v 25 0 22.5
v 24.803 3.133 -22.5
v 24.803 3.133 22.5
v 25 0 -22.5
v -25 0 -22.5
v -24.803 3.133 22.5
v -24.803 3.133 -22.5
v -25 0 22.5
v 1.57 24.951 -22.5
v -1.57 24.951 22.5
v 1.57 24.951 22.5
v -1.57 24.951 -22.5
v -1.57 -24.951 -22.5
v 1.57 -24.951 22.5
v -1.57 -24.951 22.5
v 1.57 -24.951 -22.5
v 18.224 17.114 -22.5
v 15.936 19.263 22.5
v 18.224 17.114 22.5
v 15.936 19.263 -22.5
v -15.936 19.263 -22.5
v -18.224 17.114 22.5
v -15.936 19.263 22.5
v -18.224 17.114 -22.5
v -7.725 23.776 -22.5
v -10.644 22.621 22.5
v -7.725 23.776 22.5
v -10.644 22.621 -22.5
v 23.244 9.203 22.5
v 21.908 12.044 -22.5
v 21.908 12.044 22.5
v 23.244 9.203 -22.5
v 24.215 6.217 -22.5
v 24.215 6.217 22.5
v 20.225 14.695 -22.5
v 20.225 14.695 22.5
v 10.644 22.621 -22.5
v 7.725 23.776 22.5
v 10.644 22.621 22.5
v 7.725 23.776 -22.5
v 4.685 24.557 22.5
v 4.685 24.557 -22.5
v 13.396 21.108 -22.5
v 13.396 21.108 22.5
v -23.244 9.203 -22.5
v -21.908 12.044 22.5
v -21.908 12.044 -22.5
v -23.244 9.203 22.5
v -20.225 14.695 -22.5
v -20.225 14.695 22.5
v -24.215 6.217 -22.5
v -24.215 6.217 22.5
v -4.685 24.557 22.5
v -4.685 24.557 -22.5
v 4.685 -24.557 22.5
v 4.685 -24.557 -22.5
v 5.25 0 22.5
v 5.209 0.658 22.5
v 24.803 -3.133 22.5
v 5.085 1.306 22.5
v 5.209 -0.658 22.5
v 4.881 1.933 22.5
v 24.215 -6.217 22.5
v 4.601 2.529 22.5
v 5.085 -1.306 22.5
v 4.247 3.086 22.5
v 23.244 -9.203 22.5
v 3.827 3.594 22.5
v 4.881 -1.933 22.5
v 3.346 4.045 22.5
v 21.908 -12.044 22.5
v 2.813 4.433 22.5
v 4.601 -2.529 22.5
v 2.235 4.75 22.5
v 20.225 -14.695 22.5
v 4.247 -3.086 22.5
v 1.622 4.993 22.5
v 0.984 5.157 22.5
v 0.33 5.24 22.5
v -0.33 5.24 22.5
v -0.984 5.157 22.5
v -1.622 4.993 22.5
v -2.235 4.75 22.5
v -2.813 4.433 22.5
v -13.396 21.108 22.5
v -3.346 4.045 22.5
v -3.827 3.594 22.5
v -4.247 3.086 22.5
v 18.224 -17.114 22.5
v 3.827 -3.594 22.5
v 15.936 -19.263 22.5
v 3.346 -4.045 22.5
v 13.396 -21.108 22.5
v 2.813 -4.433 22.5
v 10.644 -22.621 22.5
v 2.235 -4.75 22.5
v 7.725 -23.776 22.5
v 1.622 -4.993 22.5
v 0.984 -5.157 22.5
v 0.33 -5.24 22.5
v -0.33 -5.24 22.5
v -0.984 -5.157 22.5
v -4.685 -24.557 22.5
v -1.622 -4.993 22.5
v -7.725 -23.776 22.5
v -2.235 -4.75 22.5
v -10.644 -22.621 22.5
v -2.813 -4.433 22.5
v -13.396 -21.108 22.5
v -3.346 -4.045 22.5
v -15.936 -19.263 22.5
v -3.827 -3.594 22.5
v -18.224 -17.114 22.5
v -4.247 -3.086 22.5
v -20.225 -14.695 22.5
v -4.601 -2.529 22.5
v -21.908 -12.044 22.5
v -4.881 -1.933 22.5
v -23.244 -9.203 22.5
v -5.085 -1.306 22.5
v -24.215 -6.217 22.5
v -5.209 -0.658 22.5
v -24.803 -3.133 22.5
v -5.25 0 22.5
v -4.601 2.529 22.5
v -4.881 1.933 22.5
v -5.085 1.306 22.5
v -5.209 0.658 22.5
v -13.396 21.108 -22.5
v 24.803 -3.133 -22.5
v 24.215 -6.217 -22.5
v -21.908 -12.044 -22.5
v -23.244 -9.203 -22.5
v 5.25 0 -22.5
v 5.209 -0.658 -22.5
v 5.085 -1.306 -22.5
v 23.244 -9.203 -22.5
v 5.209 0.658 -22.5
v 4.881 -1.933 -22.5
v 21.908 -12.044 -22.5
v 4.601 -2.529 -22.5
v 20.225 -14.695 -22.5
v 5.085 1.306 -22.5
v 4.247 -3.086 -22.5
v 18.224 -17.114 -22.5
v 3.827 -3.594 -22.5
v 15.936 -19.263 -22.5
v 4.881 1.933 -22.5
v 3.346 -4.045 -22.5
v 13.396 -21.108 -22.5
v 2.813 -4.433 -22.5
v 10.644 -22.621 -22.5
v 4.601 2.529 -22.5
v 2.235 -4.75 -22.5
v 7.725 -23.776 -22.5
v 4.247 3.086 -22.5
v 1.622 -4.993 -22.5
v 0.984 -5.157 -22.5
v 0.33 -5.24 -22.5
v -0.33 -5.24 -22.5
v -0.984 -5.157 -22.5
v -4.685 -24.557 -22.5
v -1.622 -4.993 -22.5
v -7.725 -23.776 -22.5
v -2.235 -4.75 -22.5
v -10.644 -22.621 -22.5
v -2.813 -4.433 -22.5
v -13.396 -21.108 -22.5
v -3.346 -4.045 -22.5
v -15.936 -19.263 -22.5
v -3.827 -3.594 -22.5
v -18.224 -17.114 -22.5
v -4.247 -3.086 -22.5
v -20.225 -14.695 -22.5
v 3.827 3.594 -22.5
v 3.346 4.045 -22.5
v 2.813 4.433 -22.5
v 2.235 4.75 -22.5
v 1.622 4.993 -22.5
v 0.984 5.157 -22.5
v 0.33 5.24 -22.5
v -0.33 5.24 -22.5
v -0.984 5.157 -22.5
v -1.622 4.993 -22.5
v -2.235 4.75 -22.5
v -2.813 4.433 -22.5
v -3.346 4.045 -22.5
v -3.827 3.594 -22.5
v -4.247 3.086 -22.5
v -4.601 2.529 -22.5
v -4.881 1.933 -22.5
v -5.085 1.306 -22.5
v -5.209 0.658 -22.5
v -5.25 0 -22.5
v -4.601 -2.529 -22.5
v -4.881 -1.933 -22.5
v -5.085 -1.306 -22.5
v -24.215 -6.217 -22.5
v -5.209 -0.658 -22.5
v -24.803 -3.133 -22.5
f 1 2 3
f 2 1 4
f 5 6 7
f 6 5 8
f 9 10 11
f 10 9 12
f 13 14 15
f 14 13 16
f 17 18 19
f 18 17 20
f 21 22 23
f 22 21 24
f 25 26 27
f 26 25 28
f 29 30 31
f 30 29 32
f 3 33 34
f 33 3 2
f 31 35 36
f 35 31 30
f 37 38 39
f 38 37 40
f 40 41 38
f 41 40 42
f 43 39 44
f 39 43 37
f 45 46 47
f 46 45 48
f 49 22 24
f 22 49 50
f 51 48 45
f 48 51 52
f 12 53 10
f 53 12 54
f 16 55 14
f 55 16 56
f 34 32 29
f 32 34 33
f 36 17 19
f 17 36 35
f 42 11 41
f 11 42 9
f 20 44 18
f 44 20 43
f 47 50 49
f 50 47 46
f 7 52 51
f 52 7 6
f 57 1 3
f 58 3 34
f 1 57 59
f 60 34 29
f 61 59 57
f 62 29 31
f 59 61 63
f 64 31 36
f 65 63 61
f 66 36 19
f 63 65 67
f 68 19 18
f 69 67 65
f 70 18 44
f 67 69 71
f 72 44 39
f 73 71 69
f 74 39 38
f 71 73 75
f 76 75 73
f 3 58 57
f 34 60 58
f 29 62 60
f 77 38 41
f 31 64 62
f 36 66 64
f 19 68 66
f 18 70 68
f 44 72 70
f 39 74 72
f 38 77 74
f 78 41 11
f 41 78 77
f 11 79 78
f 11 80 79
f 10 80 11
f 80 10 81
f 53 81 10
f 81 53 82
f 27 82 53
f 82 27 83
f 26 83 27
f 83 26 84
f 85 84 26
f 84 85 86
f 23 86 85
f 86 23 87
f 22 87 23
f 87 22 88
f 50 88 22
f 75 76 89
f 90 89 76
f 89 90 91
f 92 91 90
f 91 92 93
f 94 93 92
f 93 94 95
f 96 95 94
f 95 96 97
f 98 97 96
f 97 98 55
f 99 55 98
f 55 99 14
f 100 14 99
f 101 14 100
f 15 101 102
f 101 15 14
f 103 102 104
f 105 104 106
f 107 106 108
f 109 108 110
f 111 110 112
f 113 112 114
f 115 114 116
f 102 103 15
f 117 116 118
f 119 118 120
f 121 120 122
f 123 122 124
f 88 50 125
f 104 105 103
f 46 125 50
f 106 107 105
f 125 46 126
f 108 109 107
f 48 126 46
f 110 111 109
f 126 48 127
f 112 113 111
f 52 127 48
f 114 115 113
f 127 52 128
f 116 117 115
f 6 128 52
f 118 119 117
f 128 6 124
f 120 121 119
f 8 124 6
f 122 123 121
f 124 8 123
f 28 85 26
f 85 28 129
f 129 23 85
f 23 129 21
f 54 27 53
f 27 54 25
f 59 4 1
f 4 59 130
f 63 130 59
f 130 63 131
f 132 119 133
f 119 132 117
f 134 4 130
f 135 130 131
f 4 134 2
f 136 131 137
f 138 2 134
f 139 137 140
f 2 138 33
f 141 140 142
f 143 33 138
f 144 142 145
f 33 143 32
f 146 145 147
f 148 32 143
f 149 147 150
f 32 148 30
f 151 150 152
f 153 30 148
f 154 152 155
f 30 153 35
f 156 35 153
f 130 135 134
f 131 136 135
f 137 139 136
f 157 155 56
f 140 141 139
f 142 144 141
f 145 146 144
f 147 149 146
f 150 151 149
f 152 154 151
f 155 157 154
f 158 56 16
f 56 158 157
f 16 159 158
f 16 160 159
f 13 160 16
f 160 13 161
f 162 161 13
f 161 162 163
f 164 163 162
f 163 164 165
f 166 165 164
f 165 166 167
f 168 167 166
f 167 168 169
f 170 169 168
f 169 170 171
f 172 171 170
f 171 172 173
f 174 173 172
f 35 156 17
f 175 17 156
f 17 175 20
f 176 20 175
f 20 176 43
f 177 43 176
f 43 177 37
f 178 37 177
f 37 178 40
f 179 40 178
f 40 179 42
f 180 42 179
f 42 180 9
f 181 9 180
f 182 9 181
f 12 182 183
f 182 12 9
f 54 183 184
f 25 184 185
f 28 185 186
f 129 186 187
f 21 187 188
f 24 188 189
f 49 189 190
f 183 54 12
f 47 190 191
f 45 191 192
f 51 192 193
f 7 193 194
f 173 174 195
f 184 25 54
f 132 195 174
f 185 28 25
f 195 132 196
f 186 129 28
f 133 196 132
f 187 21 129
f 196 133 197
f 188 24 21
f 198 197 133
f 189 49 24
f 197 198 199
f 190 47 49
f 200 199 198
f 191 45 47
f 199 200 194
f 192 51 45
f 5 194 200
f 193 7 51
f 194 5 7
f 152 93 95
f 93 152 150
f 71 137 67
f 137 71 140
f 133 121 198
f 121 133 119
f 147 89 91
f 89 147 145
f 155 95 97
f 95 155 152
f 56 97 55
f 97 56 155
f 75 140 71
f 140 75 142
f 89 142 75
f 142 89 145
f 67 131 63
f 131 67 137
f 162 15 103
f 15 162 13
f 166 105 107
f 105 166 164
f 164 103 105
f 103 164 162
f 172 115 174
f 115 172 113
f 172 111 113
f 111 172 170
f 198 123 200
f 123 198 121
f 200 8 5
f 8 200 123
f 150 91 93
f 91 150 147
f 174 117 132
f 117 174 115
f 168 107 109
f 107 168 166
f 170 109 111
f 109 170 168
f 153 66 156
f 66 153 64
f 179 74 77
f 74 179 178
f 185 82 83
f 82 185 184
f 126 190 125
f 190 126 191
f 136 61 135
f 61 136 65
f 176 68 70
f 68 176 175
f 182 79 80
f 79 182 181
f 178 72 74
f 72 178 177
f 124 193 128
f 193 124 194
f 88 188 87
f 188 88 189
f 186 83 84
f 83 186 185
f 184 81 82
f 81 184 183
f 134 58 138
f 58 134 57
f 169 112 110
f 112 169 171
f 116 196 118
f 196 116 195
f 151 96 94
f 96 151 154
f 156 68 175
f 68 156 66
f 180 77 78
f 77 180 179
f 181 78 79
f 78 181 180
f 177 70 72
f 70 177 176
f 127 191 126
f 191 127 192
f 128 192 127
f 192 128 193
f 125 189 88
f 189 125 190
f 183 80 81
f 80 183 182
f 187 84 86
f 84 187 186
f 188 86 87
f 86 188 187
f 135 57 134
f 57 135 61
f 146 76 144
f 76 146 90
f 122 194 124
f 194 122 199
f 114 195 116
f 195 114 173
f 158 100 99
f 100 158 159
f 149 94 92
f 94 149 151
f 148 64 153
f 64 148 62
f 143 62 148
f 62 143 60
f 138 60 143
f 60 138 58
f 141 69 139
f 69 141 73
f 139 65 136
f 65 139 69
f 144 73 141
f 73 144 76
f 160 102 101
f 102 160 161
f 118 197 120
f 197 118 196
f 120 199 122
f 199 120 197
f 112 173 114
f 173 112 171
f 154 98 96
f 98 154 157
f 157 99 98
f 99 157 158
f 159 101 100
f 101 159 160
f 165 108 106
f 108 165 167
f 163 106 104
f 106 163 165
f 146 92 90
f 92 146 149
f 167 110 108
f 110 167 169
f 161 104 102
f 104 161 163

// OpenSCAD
$fn = 50;


difference() {
	union() {
		translate(v = [0, 0, -22.5000000000]) {
			cylinder(h = 45, r = 25.0000000000);
		}
	}
	union() {
		translate(v = [0, 0, -100.0000000000]) {
			cylinder(h = 200, r = 5.2500000000);
		}
	}
}
